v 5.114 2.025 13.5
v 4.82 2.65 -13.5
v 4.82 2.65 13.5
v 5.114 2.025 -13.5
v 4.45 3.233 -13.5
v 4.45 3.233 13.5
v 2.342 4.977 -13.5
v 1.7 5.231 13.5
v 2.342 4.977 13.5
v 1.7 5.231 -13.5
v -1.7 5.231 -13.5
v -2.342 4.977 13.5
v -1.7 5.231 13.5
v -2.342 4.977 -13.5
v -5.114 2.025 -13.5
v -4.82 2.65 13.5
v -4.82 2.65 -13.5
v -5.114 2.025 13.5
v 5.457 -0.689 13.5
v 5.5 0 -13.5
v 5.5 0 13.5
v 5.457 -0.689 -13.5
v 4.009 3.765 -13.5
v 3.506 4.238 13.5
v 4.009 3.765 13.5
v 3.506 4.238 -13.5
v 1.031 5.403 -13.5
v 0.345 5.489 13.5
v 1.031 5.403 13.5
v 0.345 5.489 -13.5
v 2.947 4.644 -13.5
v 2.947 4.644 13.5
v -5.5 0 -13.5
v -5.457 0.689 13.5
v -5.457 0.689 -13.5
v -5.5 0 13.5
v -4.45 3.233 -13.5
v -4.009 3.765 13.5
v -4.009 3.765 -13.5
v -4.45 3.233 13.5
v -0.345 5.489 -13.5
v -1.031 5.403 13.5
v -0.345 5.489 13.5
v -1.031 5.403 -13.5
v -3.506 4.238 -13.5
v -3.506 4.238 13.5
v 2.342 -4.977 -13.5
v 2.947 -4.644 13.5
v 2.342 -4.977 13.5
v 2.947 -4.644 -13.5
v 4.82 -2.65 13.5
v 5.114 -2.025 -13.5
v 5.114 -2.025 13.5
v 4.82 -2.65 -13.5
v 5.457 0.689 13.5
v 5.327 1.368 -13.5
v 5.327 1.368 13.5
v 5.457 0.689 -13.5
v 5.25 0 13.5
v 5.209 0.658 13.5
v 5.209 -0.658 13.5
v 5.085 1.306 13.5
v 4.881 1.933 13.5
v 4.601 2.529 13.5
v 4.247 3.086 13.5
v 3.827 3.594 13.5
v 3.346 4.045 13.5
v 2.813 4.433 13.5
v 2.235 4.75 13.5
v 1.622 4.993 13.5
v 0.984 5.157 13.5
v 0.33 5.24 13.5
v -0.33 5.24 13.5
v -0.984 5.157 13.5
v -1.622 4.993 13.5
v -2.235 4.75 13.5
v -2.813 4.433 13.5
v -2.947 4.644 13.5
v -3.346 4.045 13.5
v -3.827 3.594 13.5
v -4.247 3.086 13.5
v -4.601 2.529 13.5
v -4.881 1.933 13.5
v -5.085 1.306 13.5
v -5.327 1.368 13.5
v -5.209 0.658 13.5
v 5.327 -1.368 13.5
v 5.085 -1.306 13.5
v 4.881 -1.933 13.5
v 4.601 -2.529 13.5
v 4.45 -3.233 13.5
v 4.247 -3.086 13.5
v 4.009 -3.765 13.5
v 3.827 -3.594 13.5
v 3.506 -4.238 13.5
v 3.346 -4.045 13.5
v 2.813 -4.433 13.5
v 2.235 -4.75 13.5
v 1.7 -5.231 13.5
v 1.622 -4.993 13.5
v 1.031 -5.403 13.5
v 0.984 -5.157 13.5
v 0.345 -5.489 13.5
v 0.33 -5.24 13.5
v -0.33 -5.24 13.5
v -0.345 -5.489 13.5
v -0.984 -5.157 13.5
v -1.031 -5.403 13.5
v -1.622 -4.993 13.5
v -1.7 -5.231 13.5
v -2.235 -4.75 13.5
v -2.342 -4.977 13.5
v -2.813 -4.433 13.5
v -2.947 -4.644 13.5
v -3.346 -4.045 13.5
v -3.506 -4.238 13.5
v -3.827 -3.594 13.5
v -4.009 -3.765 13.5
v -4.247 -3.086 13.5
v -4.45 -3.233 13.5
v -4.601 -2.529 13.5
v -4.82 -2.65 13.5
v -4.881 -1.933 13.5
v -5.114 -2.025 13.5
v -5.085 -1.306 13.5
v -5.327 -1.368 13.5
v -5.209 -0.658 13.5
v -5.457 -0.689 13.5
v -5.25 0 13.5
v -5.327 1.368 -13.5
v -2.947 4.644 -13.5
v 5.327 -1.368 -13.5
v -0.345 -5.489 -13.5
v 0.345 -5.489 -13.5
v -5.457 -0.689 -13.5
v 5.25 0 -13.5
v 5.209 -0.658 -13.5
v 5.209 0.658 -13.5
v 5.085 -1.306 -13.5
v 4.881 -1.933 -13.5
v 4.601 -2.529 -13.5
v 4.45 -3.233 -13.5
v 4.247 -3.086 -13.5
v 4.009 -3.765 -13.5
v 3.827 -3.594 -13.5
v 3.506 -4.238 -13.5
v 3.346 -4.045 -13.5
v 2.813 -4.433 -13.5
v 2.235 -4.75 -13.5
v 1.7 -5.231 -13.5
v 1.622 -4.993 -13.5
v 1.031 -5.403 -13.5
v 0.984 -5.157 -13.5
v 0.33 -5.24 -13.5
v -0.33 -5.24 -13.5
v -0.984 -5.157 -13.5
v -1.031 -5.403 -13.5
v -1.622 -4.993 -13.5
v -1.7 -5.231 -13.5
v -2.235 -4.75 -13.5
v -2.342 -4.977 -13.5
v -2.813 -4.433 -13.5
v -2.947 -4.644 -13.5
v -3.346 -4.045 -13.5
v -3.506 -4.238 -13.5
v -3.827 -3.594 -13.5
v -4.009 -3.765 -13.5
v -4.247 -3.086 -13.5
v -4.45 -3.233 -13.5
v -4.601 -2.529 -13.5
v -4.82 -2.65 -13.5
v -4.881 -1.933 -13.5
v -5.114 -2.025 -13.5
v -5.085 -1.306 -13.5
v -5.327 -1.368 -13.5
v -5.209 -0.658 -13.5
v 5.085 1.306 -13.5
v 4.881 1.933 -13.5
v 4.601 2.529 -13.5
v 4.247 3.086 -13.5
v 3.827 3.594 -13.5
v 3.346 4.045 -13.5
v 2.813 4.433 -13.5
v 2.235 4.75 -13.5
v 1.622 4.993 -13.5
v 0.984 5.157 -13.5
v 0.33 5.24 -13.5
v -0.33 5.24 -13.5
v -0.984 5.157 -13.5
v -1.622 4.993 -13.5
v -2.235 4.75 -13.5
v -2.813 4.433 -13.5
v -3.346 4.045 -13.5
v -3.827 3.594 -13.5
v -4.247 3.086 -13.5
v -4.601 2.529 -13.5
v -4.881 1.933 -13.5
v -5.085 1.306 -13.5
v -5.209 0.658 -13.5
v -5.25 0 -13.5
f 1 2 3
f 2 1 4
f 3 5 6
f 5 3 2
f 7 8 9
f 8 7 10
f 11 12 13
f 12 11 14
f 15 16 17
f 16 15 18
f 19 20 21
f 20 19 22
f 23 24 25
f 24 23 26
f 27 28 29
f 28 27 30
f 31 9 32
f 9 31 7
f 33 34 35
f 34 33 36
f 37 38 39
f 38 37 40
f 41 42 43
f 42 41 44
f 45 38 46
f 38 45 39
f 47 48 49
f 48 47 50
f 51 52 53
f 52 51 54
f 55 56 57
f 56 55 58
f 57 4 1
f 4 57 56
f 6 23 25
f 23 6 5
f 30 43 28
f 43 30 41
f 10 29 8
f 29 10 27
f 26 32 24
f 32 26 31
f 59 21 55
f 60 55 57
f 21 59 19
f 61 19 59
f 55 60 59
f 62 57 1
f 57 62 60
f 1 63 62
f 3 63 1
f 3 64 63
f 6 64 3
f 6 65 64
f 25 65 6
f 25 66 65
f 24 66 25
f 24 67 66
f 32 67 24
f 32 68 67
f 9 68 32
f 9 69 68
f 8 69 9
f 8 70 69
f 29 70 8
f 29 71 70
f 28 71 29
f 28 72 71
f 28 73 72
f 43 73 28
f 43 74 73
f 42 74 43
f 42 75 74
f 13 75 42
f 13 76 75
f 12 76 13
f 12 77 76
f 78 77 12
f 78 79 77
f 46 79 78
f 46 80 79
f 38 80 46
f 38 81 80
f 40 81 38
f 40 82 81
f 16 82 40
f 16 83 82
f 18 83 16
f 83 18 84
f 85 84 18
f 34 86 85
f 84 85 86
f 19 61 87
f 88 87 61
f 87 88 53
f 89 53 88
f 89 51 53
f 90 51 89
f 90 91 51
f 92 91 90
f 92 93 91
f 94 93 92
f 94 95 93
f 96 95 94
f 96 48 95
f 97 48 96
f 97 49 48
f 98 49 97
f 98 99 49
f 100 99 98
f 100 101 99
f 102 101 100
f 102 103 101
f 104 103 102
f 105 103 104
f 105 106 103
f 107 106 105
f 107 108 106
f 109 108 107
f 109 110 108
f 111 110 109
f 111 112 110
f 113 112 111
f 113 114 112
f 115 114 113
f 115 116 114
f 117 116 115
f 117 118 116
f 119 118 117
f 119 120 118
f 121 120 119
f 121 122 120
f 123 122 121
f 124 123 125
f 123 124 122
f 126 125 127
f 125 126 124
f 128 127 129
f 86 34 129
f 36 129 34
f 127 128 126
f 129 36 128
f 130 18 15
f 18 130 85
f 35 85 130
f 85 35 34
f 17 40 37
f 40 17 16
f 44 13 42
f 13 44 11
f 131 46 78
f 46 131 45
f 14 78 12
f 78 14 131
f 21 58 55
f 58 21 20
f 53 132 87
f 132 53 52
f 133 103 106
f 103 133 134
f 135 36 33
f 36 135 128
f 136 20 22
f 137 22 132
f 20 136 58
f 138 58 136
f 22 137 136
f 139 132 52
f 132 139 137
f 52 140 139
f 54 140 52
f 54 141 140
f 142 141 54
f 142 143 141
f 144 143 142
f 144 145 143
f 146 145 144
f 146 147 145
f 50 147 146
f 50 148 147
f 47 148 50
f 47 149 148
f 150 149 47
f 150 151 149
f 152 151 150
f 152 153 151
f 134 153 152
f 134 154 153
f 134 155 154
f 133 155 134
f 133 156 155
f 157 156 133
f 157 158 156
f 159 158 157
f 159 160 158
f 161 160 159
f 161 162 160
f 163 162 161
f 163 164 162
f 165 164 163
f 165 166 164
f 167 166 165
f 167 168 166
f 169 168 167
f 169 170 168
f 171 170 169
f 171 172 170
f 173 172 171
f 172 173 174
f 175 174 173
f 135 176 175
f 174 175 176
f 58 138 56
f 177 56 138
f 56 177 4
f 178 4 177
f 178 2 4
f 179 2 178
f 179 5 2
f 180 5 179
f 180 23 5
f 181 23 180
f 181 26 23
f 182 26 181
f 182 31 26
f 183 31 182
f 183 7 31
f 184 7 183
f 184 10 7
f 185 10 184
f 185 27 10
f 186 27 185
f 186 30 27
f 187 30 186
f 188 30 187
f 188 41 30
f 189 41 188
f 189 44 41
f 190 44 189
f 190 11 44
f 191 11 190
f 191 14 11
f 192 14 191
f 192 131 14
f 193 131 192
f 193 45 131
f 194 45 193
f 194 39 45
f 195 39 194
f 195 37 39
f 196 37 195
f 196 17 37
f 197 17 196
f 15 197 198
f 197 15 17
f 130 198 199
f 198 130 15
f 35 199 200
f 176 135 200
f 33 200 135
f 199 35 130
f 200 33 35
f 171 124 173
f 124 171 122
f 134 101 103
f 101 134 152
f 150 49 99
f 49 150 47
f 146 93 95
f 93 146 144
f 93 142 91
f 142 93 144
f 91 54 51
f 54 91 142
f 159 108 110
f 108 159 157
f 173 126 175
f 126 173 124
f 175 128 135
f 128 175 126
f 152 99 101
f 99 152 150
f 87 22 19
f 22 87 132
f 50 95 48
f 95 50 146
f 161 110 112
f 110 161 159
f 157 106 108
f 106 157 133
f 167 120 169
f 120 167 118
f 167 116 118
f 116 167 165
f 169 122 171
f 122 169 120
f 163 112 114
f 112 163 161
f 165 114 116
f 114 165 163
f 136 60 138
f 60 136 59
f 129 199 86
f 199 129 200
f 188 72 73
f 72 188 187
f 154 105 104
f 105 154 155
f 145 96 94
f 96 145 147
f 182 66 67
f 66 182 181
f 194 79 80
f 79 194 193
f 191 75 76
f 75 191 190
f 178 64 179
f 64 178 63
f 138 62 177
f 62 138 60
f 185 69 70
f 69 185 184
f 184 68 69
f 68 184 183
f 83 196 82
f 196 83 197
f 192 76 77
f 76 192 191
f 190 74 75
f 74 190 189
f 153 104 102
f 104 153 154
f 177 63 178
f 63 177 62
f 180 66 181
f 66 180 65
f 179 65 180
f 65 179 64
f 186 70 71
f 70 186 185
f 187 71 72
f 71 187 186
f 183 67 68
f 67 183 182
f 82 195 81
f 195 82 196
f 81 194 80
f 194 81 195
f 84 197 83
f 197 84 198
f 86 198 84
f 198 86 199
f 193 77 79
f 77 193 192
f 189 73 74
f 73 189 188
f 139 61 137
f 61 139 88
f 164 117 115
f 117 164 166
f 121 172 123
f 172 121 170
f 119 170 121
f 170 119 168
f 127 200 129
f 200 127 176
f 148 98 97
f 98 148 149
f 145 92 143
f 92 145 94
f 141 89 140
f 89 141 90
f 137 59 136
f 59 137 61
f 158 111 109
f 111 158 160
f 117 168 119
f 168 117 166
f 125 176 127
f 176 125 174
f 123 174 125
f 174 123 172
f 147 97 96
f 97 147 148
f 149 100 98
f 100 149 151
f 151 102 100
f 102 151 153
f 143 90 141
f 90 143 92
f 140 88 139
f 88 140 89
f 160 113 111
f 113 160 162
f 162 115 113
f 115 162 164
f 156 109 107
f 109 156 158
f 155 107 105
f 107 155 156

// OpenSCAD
$fn = 50;


difference() {
	union() {
		translate(v = [0, 0, -13.5000000000]) {
			cylinder(h = 27, r = 5.5000000000);
		}
	}
	union() {
		translate(v = [0, 0, -100.0000000000]) {
			cylinder(h = 200, r = 5.2500000000);
		}
	}
}
